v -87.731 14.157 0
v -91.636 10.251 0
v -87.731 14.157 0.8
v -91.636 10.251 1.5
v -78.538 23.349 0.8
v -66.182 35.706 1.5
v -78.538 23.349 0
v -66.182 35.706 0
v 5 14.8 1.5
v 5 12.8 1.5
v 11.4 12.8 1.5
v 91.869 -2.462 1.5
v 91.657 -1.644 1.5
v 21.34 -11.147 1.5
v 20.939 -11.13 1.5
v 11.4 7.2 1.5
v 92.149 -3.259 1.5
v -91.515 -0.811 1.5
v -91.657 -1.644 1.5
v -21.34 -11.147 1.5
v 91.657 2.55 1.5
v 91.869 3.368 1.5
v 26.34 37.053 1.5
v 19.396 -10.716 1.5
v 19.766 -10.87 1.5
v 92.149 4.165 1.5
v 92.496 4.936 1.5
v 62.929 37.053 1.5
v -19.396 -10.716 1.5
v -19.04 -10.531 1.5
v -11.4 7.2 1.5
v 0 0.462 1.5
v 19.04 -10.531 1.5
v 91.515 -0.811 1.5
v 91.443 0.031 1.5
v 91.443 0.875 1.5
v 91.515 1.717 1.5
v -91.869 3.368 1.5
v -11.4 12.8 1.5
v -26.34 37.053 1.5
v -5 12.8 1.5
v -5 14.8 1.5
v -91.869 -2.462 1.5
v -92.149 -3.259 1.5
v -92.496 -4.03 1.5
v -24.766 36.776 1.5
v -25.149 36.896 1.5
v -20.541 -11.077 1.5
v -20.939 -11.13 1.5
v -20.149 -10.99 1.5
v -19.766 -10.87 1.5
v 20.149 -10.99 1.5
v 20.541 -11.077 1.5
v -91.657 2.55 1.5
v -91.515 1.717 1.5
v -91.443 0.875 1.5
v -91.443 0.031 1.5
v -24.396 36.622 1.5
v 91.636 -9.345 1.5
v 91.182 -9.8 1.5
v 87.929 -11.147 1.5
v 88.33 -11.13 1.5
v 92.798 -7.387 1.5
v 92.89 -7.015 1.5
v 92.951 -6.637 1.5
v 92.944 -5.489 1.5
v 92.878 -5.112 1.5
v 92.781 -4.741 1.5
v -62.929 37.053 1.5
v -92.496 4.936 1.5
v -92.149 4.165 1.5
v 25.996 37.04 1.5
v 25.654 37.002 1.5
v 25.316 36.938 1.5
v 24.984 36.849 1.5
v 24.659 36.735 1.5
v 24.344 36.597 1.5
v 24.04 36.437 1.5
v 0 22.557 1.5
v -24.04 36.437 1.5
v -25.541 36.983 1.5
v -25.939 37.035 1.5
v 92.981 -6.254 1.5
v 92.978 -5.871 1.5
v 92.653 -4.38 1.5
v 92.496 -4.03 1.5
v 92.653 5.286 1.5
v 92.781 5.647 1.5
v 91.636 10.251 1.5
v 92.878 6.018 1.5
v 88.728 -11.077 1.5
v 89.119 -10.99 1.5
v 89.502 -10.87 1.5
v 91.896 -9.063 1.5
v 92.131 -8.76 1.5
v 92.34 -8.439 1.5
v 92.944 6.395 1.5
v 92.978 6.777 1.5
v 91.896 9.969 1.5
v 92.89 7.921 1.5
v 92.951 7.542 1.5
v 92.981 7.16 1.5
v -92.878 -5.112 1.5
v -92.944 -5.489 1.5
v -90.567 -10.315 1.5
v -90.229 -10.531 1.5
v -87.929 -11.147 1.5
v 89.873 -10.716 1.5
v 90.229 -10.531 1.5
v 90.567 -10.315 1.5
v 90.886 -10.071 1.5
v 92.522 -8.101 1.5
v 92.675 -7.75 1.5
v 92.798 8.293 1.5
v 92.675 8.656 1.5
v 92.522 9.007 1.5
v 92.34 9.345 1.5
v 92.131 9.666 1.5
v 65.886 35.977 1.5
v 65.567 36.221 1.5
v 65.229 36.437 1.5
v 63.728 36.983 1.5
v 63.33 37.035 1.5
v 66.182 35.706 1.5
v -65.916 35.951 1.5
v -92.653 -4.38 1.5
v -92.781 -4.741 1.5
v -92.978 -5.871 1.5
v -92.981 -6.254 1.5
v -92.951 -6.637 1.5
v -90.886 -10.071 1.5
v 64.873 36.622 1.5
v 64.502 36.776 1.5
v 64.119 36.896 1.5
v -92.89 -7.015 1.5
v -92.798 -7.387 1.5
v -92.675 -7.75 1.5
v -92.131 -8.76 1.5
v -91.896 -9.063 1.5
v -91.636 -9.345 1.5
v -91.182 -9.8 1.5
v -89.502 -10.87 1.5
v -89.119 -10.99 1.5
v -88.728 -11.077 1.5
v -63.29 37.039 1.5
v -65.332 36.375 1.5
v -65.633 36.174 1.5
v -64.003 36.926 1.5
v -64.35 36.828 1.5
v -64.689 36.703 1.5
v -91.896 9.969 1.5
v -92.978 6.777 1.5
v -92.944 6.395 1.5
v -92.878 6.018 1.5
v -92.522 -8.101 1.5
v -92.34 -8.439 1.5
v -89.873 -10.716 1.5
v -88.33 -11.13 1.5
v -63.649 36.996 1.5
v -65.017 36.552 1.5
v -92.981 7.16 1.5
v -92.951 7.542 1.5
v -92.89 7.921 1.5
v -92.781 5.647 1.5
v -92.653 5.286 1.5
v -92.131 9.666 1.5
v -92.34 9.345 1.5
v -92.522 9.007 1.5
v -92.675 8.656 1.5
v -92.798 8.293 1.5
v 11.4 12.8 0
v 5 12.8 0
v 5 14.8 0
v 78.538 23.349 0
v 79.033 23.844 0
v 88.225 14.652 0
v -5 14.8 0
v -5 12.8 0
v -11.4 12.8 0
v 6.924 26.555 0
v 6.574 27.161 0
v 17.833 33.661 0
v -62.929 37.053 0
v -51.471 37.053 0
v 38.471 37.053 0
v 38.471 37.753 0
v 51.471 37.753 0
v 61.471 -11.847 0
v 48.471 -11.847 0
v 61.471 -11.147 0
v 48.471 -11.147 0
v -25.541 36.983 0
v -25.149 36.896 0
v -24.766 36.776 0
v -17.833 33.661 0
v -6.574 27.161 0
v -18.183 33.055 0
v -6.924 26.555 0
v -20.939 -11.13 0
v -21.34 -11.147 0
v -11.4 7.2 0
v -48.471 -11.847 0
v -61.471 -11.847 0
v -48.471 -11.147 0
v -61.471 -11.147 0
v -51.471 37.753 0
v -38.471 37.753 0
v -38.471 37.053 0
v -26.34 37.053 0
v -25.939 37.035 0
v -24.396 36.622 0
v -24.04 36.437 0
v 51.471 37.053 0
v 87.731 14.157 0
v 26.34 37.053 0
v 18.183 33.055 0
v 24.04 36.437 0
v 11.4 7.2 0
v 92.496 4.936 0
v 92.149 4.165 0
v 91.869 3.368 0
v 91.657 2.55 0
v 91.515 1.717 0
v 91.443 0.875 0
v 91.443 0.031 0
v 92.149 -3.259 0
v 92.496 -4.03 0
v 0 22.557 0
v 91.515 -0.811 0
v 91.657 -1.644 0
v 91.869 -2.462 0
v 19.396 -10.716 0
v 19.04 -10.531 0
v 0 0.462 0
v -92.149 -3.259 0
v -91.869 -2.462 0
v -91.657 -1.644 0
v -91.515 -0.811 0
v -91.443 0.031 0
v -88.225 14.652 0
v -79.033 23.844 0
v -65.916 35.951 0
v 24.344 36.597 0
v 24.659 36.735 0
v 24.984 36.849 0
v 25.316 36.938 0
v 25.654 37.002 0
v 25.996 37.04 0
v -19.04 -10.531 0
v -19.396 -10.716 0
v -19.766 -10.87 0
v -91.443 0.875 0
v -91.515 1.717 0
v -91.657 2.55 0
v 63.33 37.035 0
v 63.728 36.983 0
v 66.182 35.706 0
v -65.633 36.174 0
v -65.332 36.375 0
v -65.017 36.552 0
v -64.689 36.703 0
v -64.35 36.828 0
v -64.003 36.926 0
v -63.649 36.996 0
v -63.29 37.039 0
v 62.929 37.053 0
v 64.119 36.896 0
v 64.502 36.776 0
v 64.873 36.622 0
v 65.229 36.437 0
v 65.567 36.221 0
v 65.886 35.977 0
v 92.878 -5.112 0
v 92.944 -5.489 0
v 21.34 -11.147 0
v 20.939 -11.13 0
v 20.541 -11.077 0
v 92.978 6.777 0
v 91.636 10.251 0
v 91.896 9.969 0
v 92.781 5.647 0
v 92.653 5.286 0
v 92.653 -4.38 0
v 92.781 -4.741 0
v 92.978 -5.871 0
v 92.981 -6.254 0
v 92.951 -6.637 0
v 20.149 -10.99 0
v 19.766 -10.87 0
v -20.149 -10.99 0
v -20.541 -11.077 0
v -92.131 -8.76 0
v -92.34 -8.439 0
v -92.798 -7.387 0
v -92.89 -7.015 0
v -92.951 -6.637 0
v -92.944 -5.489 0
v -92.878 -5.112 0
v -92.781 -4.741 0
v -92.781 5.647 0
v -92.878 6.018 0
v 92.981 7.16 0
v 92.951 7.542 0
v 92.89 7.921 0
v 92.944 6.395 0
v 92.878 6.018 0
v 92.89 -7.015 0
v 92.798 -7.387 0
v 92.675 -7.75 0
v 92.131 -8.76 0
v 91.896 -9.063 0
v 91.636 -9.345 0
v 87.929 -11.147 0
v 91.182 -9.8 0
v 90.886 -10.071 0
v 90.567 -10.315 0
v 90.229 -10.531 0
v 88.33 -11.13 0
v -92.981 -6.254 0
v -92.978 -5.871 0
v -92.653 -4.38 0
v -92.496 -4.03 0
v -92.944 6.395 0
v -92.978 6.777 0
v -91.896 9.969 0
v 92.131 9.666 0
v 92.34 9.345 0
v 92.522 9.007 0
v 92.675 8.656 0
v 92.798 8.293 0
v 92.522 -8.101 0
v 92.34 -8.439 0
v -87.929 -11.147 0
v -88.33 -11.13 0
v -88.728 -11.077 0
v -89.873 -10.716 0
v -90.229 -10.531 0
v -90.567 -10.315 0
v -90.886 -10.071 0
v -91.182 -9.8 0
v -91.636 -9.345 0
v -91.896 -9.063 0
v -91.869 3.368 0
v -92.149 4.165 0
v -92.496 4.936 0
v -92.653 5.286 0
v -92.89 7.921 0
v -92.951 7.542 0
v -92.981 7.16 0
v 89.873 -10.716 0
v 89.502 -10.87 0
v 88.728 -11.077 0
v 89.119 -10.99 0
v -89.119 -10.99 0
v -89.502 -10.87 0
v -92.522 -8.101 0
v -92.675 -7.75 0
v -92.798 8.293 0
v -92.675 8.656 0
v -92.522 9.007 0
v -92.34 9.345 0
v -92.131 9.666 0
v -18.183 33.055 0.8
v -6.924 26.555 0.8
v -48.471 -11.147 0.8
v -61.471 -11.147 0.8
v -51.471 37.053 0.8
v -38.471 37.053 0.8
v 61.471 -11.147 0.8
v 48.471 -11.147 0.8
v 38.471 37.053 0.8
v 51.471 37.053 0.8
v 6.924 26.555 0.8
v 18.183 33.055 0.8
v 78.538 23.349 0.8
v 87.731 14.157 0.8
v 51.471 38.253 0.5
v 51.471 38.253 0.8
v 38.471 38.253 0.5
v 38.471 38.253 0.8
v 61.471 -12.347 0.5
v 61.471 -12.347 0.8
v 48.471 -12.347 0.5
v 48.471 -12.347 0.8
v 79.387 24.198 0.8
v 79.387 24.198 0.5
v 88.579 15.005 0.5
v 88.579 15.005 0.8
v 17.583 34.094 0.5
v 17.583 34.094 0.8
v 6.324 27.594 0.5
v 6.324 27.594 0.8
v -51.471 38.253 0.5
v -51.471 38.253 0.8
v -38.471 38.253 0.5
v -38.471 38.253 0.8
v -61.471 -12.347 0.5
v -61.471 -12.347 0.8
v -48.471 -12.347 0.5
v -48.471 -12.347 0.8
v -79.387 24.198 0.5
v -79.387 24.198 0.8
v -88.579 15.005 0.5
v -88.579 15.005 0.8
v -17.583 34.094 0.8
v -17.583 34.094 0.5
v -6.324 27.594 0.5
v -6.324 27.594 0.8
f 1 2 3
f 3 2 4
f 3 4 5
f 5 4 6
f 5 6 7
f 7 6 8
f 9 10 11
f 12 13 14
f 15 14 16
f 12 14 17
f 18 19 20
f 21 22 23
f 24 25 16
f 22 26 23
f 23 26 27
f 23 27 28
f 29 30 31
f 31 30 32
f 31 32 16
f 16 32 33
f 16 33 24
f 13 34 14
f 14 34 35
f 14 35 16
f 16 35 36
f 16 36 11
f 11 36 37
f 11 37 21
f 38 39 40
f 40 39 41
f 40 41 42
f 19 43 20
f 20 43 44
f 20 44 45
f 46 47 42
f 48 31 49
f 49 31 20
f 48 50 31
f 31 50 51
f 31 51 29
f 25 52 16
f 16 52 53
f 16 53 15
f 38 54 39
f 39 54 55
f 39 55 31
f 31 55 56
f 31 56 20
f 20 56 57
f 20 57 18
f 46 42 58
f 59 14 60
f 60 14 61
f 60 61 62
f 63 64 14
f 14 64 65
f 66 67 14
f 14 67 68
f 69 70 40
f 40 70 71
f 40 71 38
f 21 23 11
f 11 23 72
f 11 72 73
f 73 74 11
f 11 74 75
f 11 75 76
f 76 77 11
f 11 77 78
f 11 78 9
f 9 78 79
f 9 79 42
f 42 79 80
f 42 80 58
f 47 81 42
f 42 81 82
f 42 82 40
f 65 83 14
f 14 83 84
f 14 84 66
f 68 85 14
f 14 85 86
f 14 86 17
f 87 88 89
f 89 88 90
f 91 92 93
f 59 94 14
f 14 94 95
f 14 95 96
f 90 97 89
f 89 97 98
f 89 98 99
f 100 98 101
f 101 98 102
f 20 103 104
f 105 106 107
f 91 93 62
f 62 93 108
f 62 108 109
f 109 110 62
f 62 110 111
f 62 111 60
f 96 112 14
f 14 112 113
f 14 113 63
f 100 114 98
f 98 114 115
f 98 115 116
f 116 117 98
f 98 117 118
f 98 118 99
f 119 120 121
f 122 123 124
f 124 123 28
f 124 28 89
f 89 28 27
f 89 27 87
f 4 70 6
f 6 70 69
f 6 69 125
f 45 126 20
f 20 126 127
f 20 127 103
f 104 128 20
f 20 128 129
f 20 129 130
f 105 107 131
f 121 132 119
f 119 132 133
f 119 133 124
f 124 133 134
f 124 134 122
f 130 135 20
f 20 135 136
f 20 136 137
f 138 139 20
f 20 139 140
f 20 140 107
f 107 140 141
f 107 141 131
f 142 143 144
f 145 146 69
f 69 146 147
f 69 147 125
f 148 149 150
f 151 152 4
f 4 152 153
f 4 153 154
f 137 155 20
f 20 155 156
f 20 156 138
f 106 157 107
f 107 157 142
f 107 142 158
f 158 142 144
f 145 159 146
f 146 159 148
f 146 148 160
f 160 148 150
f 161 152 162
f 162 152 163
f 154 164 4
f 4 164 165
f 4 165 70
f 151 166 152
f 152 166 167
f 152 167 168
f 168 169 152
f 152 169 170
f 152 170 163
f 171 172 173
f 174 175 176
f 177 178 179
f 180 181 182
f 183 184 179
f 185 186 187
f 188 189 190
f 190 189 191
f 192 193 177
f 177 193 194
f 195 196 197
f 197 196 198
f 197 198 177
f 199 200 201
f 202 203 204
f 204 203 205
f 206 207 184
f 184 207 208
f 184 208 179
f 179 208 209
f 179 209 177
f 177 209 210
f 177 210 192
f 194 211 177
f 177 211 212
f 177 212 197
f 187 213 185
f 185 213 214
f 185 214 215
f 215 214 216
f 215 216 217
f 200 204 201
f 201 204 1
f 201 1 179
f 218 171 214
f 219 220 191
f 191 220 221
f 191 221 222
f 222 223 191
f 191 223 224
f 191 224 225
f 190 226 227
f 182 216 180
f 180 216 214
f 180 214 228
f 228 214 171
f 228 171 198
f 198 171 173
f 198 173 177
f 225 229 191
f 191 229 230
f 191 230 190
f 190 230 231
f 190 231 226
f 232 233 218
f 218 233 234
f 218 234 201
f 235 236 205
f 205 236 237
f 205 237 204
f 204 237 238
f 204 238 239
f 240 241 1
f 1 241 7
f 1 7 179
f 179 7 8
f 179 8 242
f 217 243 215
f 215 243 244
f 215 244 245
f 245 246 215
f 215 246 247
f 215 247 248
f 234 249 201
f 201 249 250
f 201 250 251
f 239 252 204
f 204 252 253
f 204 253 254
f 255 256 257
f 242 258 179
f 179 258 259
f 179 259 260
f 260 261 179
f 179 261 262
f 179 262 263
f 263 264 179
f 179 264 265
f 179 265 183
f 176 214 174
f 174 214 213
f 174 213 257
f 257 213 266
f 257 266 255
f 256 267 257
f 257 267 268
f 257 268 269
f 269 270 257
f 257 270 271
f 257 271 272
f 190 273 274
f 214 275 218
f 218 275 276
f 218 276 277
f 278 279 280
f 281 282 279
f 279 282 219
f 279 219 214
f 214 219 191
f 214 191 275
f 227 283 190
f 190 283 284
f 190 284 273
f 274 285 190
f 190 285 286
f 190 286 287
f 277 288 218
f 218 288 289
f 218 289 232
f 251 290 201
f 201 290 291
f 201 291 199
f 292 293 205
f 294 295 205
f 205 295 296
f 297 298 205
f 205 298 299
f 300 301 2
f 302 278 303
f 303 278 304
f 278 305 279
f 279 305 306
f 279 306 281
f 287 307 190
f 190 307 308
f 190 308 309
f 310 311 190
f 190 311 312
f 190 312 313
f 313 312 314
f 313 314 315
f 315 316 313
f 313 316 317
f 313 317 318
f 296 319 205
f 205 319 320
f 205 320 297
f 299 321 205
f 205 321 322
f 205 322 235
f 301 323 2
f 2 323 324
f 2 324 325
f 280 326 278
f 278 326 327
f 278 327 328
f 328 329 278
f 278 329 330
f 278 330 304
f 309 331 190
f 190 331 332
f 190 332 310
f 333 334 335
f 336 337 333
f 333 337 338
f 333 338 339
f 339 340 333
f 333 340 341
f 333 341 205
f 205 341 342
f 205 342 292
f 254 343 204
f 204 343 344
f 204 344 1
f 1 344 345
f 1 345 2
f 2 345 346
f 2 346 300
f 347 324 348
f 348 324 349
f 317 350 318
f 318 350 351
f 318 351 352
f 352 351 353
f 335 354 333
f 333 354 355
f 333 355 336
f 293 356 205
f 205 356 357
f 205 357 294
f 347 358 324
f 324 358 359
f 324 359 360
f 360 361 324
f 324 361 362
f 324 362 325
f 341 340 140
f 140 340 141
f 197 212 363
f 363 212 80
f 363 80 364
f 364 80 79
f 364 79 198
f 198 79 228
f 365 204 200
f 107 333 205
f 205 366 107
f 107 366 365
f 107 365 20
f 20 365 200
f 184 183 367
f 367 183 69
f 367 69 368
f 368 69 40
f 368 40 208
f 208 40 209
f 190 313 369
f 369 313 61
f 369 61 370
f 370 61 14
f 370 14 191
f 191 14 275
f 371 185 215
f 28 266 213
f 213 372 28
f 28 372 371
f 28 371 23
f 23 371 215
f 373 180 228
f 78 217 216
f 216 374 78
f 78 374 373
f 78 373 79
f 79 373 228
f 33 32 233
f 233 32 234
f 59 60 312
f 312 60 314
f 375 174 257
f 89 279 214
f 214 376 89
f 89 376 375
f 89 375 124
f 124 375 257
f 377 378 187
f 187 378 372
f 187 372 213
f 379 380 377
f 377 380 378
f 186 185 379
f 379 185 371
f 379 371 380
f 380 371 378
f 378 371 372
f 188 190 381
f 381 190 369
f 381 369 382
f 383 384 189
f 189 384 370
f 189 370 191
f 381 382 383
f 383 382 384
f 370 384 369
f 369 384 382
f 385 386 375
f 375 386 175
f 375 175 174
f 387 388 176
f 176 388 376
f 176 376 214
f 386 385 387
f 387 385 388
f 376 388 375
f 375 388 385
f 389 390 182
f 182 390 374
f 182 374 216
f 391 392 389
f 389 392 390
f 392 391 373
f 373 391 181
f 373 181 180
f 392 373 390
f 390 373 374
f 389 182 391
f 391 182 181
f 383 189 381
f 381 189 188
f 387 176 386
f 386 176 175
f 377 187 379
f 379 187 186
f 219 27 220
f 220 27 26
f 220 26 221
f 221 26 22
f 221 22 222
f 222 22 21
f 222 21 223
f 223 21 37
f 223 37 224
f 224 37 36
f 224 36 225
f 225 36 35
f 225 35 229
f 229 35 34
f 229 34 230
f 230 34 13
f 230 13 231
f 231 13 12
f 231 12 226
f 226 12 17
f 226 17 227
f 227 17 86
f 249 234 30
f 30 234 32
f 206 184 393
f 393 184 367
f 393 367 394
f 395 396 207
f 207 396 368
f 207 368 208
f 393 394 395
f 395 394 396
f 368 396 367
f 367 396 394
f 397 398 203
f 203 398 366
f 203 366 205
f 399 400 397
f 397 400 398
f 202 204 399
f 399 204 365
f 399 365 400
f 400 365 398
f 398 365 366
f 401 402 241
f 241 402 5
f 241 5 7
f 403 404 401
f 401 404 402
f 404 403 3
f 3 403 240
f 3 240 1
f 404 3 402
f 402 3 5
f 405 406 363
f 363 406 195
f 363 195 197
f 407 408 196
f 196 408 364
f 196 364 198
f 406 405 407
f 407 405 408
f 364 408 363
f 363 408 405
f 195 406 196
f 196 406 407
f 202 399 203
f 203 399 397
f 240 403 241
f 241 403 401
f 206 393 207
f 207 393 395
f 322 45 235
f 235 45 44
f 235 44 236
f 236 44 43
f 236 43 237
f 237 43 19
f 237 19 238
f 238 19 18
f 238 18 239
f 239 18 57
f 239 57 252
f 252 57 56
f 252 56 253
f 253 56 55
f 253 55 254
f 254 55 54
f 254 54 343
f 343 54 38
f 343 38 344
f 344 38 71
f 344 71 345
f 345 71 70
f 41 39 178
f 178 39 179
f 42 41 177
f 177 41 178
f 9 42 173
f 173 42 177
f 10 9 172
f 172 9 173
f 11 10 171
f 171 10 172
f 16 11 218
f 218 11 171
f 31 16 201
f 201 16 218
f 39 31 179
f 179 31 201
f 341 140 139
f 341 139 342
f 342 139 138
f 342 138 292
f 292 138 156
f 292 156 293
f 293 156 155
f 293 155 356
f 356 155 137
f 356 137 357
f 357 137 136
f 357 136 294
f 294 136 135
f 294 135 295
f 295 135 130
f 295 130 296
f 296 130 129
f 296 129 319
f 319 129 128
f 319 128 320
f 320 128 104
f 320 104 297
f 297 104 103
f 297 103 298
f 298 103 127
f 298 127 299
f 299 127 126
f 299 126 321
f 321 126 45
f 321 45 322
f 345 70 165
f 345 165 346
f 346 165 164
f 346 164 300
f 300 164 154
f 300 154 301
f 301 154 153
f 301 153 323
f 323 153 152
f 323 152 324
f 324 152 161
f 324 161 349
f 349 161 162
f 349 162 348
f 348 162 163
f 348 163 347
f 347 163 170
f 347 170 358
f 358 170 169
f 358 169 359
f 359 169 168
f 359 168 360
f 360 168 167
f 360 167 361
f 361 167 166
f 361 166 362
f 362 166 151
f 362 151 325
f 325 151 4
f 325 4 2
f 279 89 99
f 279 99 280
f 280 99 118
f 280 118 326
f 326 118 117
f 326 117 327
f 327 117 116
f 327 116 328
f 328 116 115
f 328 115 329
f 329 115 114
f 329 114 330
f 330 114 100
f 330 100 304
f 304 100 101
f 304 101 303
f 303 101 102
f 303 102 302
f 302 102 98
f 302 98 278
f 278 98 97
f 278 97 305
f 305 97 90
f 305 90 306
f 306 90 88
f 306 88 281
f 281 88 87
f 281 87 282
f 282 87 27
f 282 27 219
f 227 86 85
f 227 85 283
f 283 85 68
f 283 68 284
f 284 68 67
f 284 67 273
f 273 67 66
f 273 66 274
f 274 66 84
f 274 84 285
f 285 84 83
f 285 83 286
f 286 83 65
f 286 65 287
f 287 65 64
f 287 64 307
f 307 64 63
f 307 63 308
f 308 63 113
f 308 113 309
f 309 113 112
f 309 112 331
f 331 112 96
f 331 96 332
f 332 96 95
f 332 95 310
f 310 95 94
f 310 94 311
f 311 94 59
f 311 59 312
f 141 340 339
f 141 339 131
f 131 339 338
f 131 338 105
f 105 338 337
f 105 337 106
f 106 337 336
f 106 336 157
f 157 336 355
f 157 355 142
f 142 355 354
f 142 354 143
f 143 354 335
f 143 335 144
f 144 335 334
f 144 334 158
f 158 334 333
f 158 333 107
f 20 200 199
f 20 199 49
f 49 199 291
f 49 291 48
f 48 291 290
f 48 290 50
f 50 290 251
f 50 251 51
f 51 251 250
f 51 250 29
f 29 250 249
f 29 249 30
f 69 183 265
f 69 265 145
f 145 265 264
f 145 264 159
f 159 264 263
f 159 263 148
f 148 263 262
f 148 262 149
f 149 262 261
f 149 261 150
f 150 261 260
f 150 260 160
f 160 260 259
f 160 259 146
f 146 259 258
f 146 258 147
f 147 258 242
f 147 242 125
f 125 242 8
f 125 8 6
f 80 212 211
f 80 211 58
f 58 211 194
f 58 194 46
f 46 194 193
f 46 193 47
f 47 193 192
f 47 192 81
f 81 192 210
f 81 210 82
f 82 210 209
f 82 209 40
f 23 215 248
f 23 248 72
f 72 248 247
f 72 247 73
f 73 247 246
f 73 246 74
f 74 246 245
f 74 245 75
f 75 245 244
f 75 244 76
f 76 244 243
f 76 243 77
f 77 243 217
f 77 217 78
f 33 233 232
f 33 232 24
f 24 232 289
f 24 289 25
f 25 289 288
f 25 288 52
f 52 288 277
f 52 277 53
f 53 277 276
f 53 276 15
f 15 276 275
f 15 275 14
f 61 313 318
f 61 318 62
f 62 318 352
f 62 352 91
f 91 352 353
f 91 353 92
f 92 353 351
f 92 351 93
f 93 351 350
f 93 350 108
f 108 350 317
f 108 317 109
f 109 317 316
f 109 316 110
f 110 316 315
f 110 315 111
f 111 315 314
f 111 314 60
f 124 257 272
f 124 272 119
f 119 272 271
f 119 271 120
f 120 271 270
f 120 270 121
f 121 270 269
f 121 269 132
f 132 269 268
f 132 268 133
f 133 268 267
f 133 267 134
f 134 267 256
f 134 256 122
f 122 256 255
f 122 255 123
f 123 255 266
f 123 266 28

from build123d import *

# Parameters (mm, degrees)
BOSS_EXTRUDE1_DEPTH      = 1.5
SKETCH5_W                = 13
SKETCH5_H                = 1.2
BOSS_EXTRUDE2_DEPTH      = 0.8
CHAMFER1_SIZE            = 0.5
SKETCH6_R                = 10
CUT_EXTRUDE3_DEPTH       = 1.5
CHAMFER1_OF_MIRROR1_SIZE = 0.5
CUT_EXTRUDE1_REACH       = 3.5
FILLET1_R                = 4.6


with BuildPart() as part:
    # Sketch1 → Boss-Extrude1 (new body)
    with BuildSketch(Plane.XY):
        Polygon((0, 22.557357671), (25.107179677, 37.052994616), (64.834314575, 37.052994616), (101.434314575, 0.452994616), (89.834314575, -11.147005384), (20.107179677, -11.147005384), (0, 0.461880215), align=None)
    boss_extrude1 = extrude(amount=BOSS_EXTRUDE1_DEPTH)

    # Sketch5 → Boss-Extrude2 (add)
    with BuildSketch(Plane(origin=(0, 0, 0), x_dir=(-1, 0, 0), z_dir=(0, 0, -1))):
        with Locations((-44.970747126, 37.652994616)):
            Rectangle(SKETCH5_W, SKETCH5_H)
        with Locations((-54.970747126, -11.747005384)):
            Rectangle(SKETCH5_W, SKETCH5_H)
        Polygon((-78.538120497, 23.349188694), (-87.730508653, 14.156800538), (-88.57903679, 15.005328676), (-79.386648635, 24.197716831), align=None)
        Polygon((-18.182754963, 33.055176144), (-6.924424714, 26.555176144), (-6.324424714, 27.594406628), (-17.582754963, 34.094406628), align=None)
    boss_extrude2 = extrude(amount=-BOSS_EXTRUDE2_DEPTH)

    # Chamfer1
    chamfer1_edges = [part.edges().sort_by_distance(p)[0] for p in [
        (44.970747126, 38.252994616, 0),
        (54.970747126, -12.347005384, 0),
        (83.982842712, 19.601522754, 0),
        (11.953589838, 30.844406628, 0),
    ]]
    chamfer(chamfer1_edges, length=CHAMFER1_SIZE)

    # Sketch6 → Cut-Extrude3 (cut)
    with BuildSketch(Plane.XY.offset(1.5)):
        with Locations((101.434314575, 0.452994616)):
            Circle(SKETCH6_R)
    cut_extrude3 = extrude(amount=-CUT_EXTRUDE3_DEPTH, mode=Mode.SUBTRACT)

    # Mirror1: Boss-Extrude1, Boss-Extrude2, Cut-Extrude3 across plane
    add(boss_extrude1.mirror(Plane(origin=(0, 0.461880215, 1.5), x_dir=(0, 0, 1), z_dir=(1, 0, 0))))
    add(boss_extrude2.mirror(Plane(origin=(0, 0.461880215, 1.5), x_dir=(0, 0, 1), z_dir=(1, 0, 0))))
    add(cut_extrude3.mirror(Plane(origin=(0, 0.461880215, 1.5), x_dir=(0, 0, 1), z_dir=(1, 0, 0))), mode=Mode.SUBTRACT)

    # Chamfer1 of Mirror1
    chamfer1_of_mirror1_edges = [part.edges().sort_by_distance(p)[0] for p in [
        (-44.970747126, 38.252994616, 0),
        (-54.970747126, -12.347005384, 0),
        (-83.982842712, 19.601522754, 0),
        (-11.953589838, 30.844406628, 0),
    ]]
    chamfer(chamfer1_of_mirror1_edges, length=CHAMFER1_OF_MIRROR1_SIZE)

    # Sketch2 → Cut-Extrude1 (cut, up to next)
    with BuildSketch(Plane.XY.offset(1.5), mode=Mode.PRIVATE) as cut_extrude1_sk1:
        Polygon((11.4, 7.2), (-11.4, 7.2), (-11.4, 12.8), (-5, 12.8), (-5, 14.8), (5, 14.8), (5, 12.8), (11.4, 12.8), align=None)
    cut_extrude1_tool1 = extrude(cut_extrude1_sk1.sketch, amount=-CUT_EXTRUDE1_REACH, mode=Mode.PRIVATE) & part.part
    add(cut_extrude1_tool1.solids().sort_by_distance((0, 10.514626, 1.5))[0], mode=Mode.SUBTRACT)

    # Fillet1
    fillet1_edges = [part.edges().sort_by_distance(p)[0] for p in [
        (94.363246763, 7.524062428, 0.75),
        (-25.107179677, 37.052994616, 0.75),
        (-64.834314575, 37.052994616, 0.75),
        (-89.834314575, -11.147005384, 0.75),
        (-20.107179677, -11.147005384, 0.75),
        (64.834314575, 37.052994616, 0.75),
        (89.834314575, -11.147005384, 0.75),
        (20.107179677, -11.147005384, 0.75),
        (25.107179677, 37.052994616, 0.75),
        (-94.363246763, 7.524062428, 0.75),
        (-94.363246763, -6.618073196, 0.75),
        (94.363246763, -6.618073196, 0.75),
    ]]
    fillet(fillet1_edges, radius=FILLET1_R)


solid = part.part
